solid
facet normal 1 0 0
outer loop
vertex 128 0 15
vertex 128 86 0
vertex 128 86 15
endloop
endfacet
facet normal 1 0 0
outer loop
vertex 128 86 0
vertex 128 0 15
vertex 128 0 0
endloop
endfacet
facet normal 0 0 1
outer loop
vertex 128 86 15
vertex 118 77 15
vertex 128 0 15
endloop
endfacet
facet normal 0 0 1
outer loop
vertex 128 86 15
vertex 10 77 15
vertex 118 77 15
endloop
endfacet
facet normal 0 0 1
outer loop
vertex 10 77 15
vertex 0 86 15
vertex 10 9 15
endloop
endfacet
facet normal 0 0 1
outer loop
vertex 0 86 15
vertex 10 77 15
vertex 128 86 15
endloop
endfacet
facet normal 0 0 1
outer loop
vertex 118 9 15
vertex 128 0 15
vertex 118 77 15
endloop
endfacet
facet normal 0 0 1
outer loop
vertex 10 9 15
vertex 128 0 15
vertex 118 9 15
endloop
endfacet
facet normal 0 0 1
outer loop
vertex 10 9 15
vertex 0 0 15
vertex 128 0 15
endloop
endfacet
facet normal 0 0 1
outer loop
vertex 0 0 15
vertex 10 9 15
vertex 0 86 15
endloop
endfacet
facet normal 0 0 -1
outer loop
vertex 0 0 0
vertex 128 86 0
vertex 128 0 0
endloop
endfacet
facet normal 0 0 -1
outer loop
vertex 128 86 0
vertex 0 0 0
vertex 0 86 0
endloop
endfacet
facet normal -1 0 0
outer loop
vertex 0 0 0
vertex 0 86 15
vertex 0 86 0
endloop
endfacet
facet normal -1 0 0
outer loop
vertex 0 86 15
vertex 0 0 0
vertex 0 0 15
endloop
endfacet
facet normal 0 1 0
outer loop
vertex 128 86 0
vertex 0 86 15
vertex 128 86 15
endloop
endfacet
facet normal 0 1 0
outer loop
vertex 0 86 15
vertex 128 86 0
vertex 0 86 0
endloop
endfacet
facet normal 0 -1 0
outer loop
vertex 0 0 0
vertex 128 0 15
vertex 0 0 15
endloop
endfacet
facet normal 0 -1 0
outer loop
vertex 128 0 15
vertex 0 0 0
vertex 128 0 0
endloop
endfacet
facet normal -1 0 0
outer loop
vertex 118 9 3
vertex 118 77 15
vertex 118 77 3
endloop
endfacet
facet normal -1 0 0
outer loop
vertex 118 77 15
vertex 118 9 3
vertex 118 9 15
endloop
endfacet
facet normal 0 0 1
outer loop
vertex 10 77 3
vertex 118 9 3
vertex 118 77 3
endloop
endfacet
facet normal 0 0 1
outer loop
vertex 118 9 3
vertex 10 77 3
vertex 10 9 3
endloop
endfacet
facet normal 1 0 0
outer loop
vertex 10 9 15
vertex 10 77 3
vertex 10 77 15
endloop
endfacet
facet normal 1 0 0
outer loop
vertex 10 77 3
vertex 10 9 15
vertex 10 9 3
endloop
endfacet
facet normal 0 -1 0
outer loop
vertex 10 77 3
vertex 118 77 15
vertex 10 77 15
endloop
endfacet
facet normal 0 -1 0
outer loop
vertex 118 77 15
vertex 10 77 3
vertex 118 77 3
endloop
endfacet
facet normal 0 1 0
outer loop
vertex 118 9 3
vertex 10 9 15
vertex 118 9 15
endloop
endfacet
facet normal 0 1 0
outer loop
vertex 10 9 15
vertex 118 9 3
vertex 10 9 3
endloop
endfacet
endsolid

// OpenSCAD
// Generated by SolidPython 1.1.1 on 2021-07-02 15:10:45


difference() {
	cube(size = [128, 86, 15]);
	translate(v = [0, 0, 3]) {
		translate(v = [10.0, 0, 0]) {
			translate(v = [0, 9.0, 0]) {
				cube(size = [108.0, 68.0, 50.0]);
			}
		}
	}
}
